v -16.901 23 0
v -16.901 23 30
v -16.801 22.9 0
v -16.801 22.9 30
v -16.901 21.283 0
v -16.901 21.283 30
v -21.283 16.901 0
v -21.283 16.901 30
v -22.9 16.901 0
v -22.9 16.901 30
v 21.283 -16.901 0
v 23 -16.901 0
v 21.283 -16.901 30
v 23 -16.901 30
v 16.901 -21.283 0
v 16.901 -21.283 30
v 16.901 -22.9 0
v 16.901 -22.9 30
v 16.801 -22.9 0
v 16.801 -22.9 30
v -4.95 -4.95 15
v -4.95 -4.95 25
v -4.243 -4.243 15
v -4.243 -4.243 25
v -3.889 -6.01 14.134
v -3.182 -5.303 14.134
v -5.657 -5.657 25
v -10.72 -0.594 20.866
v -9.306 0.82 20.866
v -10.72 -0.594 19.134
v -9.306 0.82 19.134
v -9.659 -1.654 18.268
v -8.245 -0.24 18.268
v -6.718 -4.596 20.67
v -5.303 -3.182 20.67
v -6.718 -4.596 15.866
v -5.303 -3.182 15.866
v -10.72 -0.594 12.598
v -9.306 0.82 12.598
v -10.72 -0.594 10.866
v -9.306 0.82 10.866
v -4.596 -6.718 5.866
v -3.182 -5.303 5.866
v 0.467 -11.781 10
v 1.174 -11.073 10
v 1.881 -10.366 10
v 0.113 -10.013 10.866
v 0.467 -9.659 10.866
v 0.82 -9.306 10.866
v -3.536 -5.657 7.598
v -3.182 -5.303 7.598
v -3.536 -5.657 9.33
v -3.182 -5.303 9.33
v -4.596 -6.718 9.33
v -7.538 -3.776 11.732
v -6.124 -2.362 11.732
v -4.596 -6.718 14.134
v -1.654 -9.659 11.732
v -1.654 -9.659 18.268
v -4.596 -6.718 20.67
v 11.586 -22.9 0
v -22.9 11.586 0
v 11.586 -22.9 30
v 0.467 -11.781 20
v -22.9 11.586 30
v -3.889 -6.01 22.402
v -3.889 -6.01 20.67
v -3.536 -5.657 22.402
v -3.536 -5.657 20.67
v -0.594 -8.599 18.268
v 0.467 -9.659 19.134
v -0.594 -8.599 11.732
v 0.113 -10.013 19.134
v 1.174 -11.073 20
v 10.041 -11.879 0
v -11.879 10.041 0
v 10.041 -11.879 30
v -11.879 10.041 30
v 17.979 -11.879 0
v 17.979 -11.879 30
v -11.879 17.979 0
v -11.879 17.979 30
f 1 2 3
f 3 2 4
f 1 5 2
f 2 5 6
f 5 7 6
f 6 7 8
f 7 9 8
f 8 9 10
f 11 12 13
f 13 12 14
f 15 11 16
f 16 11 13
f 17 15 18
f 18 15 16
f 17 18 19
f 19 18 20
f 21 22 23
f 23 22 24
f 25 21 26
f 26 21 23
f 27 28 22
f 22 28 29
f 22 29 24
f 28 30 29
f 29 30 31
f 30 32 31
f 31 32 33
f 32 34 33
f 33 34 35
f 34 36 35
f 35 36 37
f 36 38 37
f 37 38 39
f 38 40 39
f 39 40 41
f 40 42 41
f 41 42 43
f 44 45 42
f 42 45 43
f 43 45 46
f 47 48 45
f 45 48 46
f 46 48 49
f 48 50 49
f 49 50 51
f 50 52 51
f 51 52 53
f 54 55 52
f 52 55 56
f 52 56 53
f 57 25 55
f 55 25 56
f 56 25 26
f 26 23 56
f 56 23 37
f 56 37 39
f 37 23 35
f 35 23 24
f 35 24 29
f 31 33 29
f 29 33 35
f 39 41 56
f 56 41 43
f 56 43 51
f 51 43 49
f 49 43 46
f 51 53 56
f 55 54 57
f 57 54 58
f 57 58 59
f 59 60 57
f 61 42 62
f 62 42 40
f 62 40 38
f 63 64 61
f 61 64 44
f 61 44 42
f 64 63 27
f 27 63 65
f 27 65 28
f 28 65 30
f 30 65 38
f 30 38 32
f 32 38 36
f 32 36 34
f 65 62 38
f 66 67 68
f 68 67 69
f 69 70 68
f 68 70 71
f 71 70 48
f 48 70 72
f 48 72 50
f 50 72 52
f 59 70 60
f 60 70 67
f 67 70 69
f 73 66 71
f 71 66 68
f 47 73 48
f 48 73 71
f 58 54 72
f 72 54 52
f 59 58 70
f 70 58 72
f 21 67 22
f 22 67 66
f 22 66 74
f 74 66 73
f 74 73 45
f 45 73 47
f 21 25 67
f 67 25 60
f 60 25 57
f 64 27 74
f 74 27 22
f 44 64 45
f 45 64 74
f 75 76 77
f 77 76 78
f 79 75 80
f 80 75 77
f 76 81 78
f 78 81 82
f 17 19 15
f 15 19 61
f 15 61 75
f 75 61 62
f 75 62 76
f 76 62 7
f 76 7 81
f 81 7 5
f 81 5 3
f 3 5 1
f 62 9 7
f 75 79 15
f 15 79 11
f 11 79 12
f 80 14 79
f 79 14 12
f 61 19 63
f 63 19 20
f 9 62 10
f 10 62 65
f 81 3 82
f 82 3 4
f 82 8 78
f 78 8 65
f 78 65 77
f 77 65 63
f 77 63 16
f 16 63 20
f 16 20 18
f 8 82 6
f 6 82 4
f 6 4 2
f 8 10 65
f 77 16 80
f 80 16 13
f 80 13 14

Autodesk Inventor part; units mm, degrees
ref_plane "YZ Plane" through (0, 0, 0) normal (1, 0, 0) x (0, 1, 0)
ref_plane "XZ Plane" through (0, 0, 0) normal (0, 1, 0) x (-1, 0, 0)
ref_plane "XY Plane" through (0, 0, 0) normal (0, 0, 1) x (1, 0, 0)
sketch "Sketch1" plane through (0, 0, 0) normal (0, 0, 1) x (1, 0, 0)
  line L0 (-16.9, 21.4) -> (-16.9, 16.9) construction
  arc A0 (-22.9, 19.9) -> (-19.9, 22.9) centre (-19.9, 19.9) ccw construction
  line L1 (-16.9, 16.9) -> (16.9, 16.9) construction
  line L2 (16.9, 16.9) -> (16.9, -16.9) construction
  line L3 (16.9, -16.9) -> (-16.9, -16.9) construction
  line L4 (-16.9, -16.9) -> (-16.9, 16.9) construction
  arc A1 (22.9, -19.9) -> (19.9, -22.9) centre (19.9, -19.9) ccw construction
  line L5 (22.9, 19.9) -> (22.9, -19.9) construction
  arc A2 (19.9, 22.9) -> (22.9, 19.9) centre (19.9, 19.9) ccw construction
  line L6 (-19.9, 22.9) -> (19.9, 22.9) construction
  arc A3 (-22.9, 19.9) -> (-19.9, 22.9) centre (-19.9, 19.9) ccw construction
  line L7 (-22.9, -19.9) -> (-22.9, 19.9) construction
  arc A4 (-19.9, -22.9) -> (-22.9, -19.9) centre (-19.9, -19.9) ccw construction
  line L8 (19.9, -22.9) -> (-19.9, -22.9) construction
  line L9 (-21.4, 16.9) -> (-16.9, 16.9) construction
  line L10 (-16.9, -16.9) -> (-21.4, -16.9) construction
  line L11 (-16.9, -16.9) -> (-16.9, -21.4) construction
  line L12 (16.9, -21.4) -> (16.9, -16.9) construction
  line L13 (21.4, -16.9) -> (16.9, -16.9) construction
  line L14 (16.9, 16.9) -> (21.4, 16.9) construction
  line L15 (16.9, 16.9) -> (16.9, 21.4) construction
  line L16 (-16.8009, 21.2415) -> (21.2415, -16.8009)
  line L17 (21.2415, -16.8009) -> (16.8009, -21.2415)
  line L18 (16.8009, -21.2415) -> (-21.2415, 16.8009)
  line L19 (-21.2415, 16.8009) -> (-16.8009, 21.2415)
  line L20 (-16.8009, 21.2415) -> (16.8009, -21.2415) construction
  line L21 (21.2415, -16.8009) -> (-21.2415, 16.8009) construction
  line L22 (-16.8009, 21.2415) -> (36.9991, 21.2415) construction
  line L23 (-21.2415, 16.8009) -> (-22.9, 16.8009)
  line L24 (16.8009, -21.2415) -> (16.8009, -22.9)
  line L25 (16.8009, -22.9) -> (-22.9, 16.8009)
  line L26 (-16.8009, 21.2415) -> (-16.8009, 22.9)
  line L27 (21.2415, -16.8009) -> (22.9, -16.8009)
  line L28 (22.9, -16.8009) -> (-16.8009, 22.9)
  line L29 (-22.9, 16.8009) -> (-22.9, 11.5863)
  line L30 (16.8009, -22.9) -> (11.5863, -22.9)
  line L31 (-22.9, 11.5863) -> (11.5863, -22.9)
  point P0 (0, 0)
  dimension "d0" = 53.8
  dimension "d1" = 45
  dimension "d2" = 6.28
  dimension "d5" = 8
extrude "Extrusion1" add sketch "Sketch1" along normal blind 30
ref_plane "Work Plane1" through (16.9, -16.9, -8) normal (-0.7071068, -0.7071068, 0) x (0, 0, 1)
sketch "Sketch7" plane through (0, 0, 30) normal (0, 0, 1) x (1, 0, 0)
  line L0 (21.2415, -16.8009) -> (22.9, -16.8009) projected
  line L1 (22.9, -16.8009) -> (-16.8009, 22.9) projected
  line L2 (-16.8009, 22.9) -> (-16.8009, 21.2415) projected
  line L3 (-16.8009, 21.2415) -> (-21.2415, 16.8009) projected
  line L4 (-21.2415, 16.8009) -> (-22.9, 16.8009) projected
  line L5 (-22.9, 16.8009) -> (-22.9, 11.5863) projected
  line L6 (-22.9, 11.5863) -> (11.5863, -22.9) projected
  line L7 (11.5863, -22.9) -> (16.8009, -22.9) projected
  line L8 (16.8009, -22.9) -> (16.8009, -21.2415) projected
  line L9 (16.8009, -21.2415) -> (21.2415, -16.8009) projected
  line L10 (3.0496, 3.0496) -> (-5.6569, -5.6569)
  line L11 (-22.9, 11.5863) -> (11.5863, -22.9) projected
  line L12 (17.9785, -3.9418) -> (10.0409, -11.8794)
  line L13 (10.0409, -11.8794) -> (-11.8794, 10.0409)
  line L14 (-11.8794, 10.0409) -> (-3.9418, 17.9785)
  line L15 (-3.9418, 17.9785) -> (17.9785, -3.9418)
  line L16 (17.9785, -3.9418) -> (-11.8794, 10.0409) construction
  line L17 (10.0409, -11.8794) -> (-3.9418, 17.9785) construction
  line L18 (-11.8794, 10.0409) -> (-11.8794, 17.9785)
  line L19 (22.9, -16.8009) -> (-16.8009, 22.9) projected
  line L20 (10.0409, -11.8794) -> (17.9785, -11.8794)
  point P0 (0, 0)
  dimension "d28" = 31
  dimension "d29" = 1.3
extrude "Extrusion7" cut sketch "Sketch7" against normal through all contours L20 L12 L1 | L12 L13 L10 L1 | L1 L14 L15 L12 | L10 L13 L14 L1 | L14 L18 L1
sketch "Sketch10" plane through (11.5863, -22.9, 30) normal (-0.7071068, -0.7071068, 0) x (-0.7071068, 0.7071068, 0)
  line L0 (1.6838, 16.5215) -> (7.0744, 16.5215) construction
  line L1 (7.0744, 16.5215) -> (7.0744, 10.5304) construction
  line L2 (7.0744, 10.5304) -> (1.6838, 10.5304) construction
  line L3 (1.6838, 10.5304) -> (1.6838, 6.839) construction
  line L4 (1.6838, 6.839) -> (6.7206, 6.839) construction
  line L5 (6.7206, 6.839) -> (6.7206, 1.2092) construction
  line L6 (6.7206, 1.2092) -> (1.6838, 1.2092) construction
  line L7 (1.6838, 1.2092) -> (1.6838, -3.423) construction
  line L8 (1.6838, -3.423) -> (34.6838, -3.423) construction
  line L9 (34.6838, 30.377) -> (1.6838, 30.377) construction
  line L10 (1.6838, 30.377) -> (1.6838, 26.2152) construction
  line L11 (1.6838, 26.2152) -> (7.1181, 26.2152) construction
  line L12 (7.1181, 26.2152) -> (7.1181, 20.0634) construction
  line L13 (7.1181, 20.0634) -> (1.6838, 20.0634) construction
  line L14 (1.6838, 20.0634) -> (1.6838, 16.5215) construction
  line L15 (7.0744, 13.526) -> (34.6838, 13.477) construction
  line L16 (1.6838, 30.377) -> (36.6838, 30.377) construction
  line L17 (36.6838, -3.423) -> (1.6838, -3.423) construction
  line L18 (15.7252, 20) -> (15.7252, 10)
  line L19 (15.7252, 10) -> (24.3855, 5)
  line L20 (15.7252, 20) -> (17.2252, 19.134)
  line L21 (17.2252, 19.134) -> (17.2252, 10.866)
  line L22 (17.2252, 10.866) -> (22.8855, 7.5981)
  line L23 (22.8855, 7.5981) -> (22.8855, 15.866)
  line L24 (22.8855, 15.866) -> (24.3855, 15)
  line L25 (24.3855, 15) -> (24.3855, 5)
  line L26 (34.6838, 30.377) -> (34.6838, -3.423)
  line L27 (24.3855, 31.8785) -> (24.3855, -1.9215) construction
  line L28 (1.6838, -3.423) -> (34.6838, -3.423) construction
  line L29 (34.6838, 30.377) -> (34.6838, 30.377) construction
  line L30 (34.6838, 30.377) -> (34.6838, -3.423) construction
  line L31 (34.6838, -3.423) -> (34.6838, -3.423) construction
  line L32 (34.6838, -3.423) -> (34.6838, 30.377) construction
  line L33 (48.771, 30) -> (0, 30) construction
  line L34 (0, 30) -> (0, 0) construction
  line L35 (48.771, 0) -> (0, 0) construction
  line L36 (48.771, 30) -> (48.771, 0) construction
  line L37 (24.3855, 30) -> (24.3855, 0) construction
  line L38 (48.771, 0) -> (0, 0) construction
  line L39 (48.771, 30) -> (48.771, 0) construction
  line L40 (48.771, 15) -> (0, 15) construction
  line L41 (0, 30) -> (0, 0) construction
  point P0 (24.3855, 15)
  dimension "d40" = 1.5
  dimension "d41" = 1.5
  dimension "d42" = 1.5
  dimension "d43" = 10
  dimension "d44" = 10
emboss "Emboss1" sketch "Sketch10" operation cut depth 1 direction (0.7071068, 0.7071068, 0)
sketch "Sketch11" plane through (11.5863, -22.9, 30) normal (-0.7071068, -0.7071068, 0) x (-0.7071068, 0.7071068, 0)
  line L0 (17.2252, 10.866) -> (22.8855, 7.5981) construction
  line L1 (22.8855, 7.5981) -> (22.8855, 15.866) construction
  line L2 (22.8855, 15.866) -> (24.3855, 15) construction
  line L3 (24.3855, 15) -> (24.3855, 5) construction
  line L4 (24.3855, 5) -> (15.7252, 10) construction
  line L5 (15.7252, 10) -> (15.7252, 20) construction
  line L6 (15.7252, 20) -> (17.2252, 19.134) construction
  line L7 (17.2252, 19.134) -> (17.2252, 10.866) construction
  line L8 (48.771, 30) -> (0, 30) construction
  line L9 (0, 30) -> (0, 0) construction
  line L10 (48.771, 0) -> (0, 0) construction
  line L11 (48.771, 30) -> (48.771, 0) construction
  line L12 (15.7252, 20) -> (17.2252, 19.134) construction
  line L13 (17.2252, 19.134) -> (17.2252, 10.866) construction
  line L14 (17.2252, 10.866) -> (22.8855, 7.5981) construction
  line L15 (22.8855, 7.5981) -> (22.8855, 15.866) construction
  line L16 (22.8855, 15.866) -> (24.3855, 15) construction
  line L17 (24.3855, 15) -> (24.3855, 5) construction
  line L18 (24.3855, 5) -> (15.7252, 10) construction
  line L19 (15.7252, 10) -> (15.7252, 20) construction
  line L20 (15.5651, 18.4016) -> (15.5, -16.9) construction
  line L21 (15.5651, 18.4016) -> (-17.5, 16.9) construction
  line L22 (-17.5, 16.9) -> (-17.5, 12.7382) construction
  line L23 (-17.5, 12.7382) -> (-12.0658, 12.7382) construction
  line L24 (-12.0658, 12.7382) -> (-12.0658, 6.5864) construction
  line L25 (-12.0658, 6.5864) -> (-17.5, 6.5864) construction
  line L26 (-17.5, 6.5864) -> (-17.5, 3.0446) construction
  line L27 (-17.5, 3.0446) -> (-12.1095, 3.0446) construction
  line L28 (-12.1095, 3.0446) -> (-12.1095, -2.9465) construction
  line L29 (-12.1095, -2.9465) -> (-17.5, -2.9465) construction
  line L30 (-17.5, -2.9465) -> (-17.5, -6.638) construction
  line L31 (-17.5, -6.638) -> (-12.4632, -6.638) construction
  line L32 (-12.4632, -6.638) -> (-12.4632, -12.2678) construction
  line L33 (-12.4632, -12.2678) -> (-17.5, -12.2678) construction
  line L34 (-17.5, -12.2678) -> (-17.5, -16.9) construction
  line L35 (-17.5, -16.9) -> (15.5, -16.9) construction
  line L36 (-12.1095, 0.049) -> (15.5326, 0.7508) construction
  line L37 (15.5, -16.9) -> (15.5651, 18.4016) construction
  line L38 (1.91, 17.7815) -> (1.91, -16.9) construction
  line L39 (15.5, -16.9) -> (-17.5, -16.9) construction
  line L40 (22.8855, 7.5981) -> (22.8855, 15.866) construction
  line L41 (17.2252, 19.134) -> (17.2252, 10.866)
  line L42 (17.2252, 10.866) -> (22.8855, 7.5981)
  line L43 (17.2252, 19.134) -> (17.2252, 10.866)
  line L44 (17.2252, 10.866) -> (22.8855, 7.5981)
  line L45 (22.8855, 7.5981) -> (22.8855, 9.3301)
  line L46 (22.8855, 7.5981) -> (22.8855, 15.866)
  line L47 (22.8855, 9.3301) -> (18.7252, 11.7321)
  line L48 (18.7252, 11.7321) -> (18.7252, 18.2679)
  line L49 (18.7252, 18.2679) -> (22.8855, 20.6699)
  line L50 (17.2252, 19.134) -> (22.8855, 22.4019)
  line L51 (22.8855, 22.4019) -> (22.8855, 20.6699)
  point P0 (24.3855, 30)
  point P1 (20.9754, 14.9785)
  dimension "d47" = 120
  dimension "d48" = 1.5
  dimension "d49" = 1.5
  dimension "d50" = 1.5
emboss "Emboss2" sketch "Sketch11" operation cut depth 1.5 direction (0.7071068, 0.7071068, 0)
sketch "Sketch12" plane through (11.5863, -22.9, 30) normal (-0.7071068, -0.7071068, 0) x (-0.7071068, 0.7071068, 0)
  line L0 (18.7252, 11.7321) -> (22.8855, 9.3301) construction
  line L1 (22.8855, 9.3301) -> (22.8855, 15.866) construction
  line L2 (22.8855, 15.866) -> (24.3855, 15) construction
  line L3 (24.3855, 15) -> (24.3855, 5) construction
  line L4 (24.3855, 5) -> (15.7252, 10) construction
  line L5 (15.7252, 10) -> (15.7252, 20) construction
  line L6 (15.7252, 20) -> (17.2252, 19.134) construction
  line L7 (17.2252, 19.134) -> (22.8855, 22.4019) construction
  line L8 (22.8855, 22.4019) -> (22.8855, 20.6699) construction
  line L9 (22.8855, 20.6699) -> (18.7252, 18.2679) construction
  line L10 (18.7252, 18.2679) -> (18.7252, 11.7321) construction
  line L11 (48.771, 30) -> (0, 30) construction
  line L12 (0, 30) -> (0, 0) construction
  line L13 (48.771, 0) -> (0, 0) construction
  line L14 (48.771, 30) -> (48.771, 0) construction
  line L15 (18.7252, 11.7321) -> (22.8855, 9.3301) construction
  line L16 (22.8855, 9.3301) -> (22.8855, 15.866) construction
  line L17 (22.8855, 15.866) -> (24.3855, 15) construction
  line L18 (24.3855, 15) -> (24.3855, 5) construction
  line L19 (24.3855, 5) -> (15.7252, 10) construction
  line L20 (15.7252, 10) -> (15.7252, 20) construction
  line L21 (15.7252, 20) -> (17.2252, 19.134) construction
  line L22 (17.2252, 19.134) -> (22.8855, 22.4019) construction
  line L23 (22.8855, 22.4019) -> (22.8855, 20.6699) construction
  line L24 (22.8855, 20.6699) -> (18.7252, 18.2679) construction
  line L25 (18.7252, 18.2679) -> (18.7252, 11.7321) construction
  line L26 (15.5651, 18.4016) -> (15.5, -16.9) construction
  line L27 (15.5651, 18.4016) -> (-17.5, 16.9) construction
  line L28 (-17.5, 16.9) -> (-17.5, 12.7382) construction
  line L29 (-17.5, 12.7382) -> (-12.0658, 12.7382) construction
  line L30 (-12.0658, 12.7382) -> (-12.0658, 6.5864) construction
  line L31 (-12.0658, 6.5864) -> (-17.5, 6.5864) construction
  line L32 (-17.5, 6.5864) -> (-17.5, 3.0446) construction
  line L33 (-17.5, 3.0446) -> (-12.1095, 3.0446) construction
  line L34 (-12.1095, 3.0446) -> (-12.1095, -2.9465) construction
  line L35 (-12.1095, -2.9465) -> (-17.5, -2.9465) construction
  line L36 (-17.5, -2.9465) -> (-17.5, -6.638) construction
  line L37 (-17.5, -6.638) -> (-12.4632, -6.638) construction
  line L38 (-12.4632, -6.638) -> (-12.4632, -12.2678) construction
  line L39 (-12.4632, -12.2678) -> (-17.5, -12.2678) construction
  line L40 (-17.5, -12.2678) -> (-17.5, -16.9) construction
  line L41 (-17.5, -16.9) -> (15.5, -16.9) construction
  line L42 (17.2252, 19.134) -> (22.8855, 22.4019)
  line L43 (15.7252, 20) -> (17.2252, 19.134)
  line L44 (17.2252, 19.134) -> (22.8855, 22.4019)
  line L45 (22.8855, 22.4019) -> (22.8855, 20.6699)
  line L46 (22.8855, 22.4019) -> (22.8855, 20.6699)
  line L47 (22.8855, 31.8785) -> (22.8855, -1.9215) construction
  line L48 (22.8855, 9.3301) -> (22.8855, 15.866) construction
  line L49 (15.7252, 20) -> (22.8855, 24.134)
  line L50 (22.8855, 24.134) -> (31.5457, 19.134)
  line L51 (31.5457, 19.134) -> (31.5457, 17.4019)
  line L52 (31.5457, 17.4019) -> (25.8855, 14.134)
  line L53 (25.8855, 14.134) -> (25.8855, 9.3301)
  line L54 (25.8855, 9.3301) -> (30.0457, 11.7321)
  line L55 (31.5457, 9.134) -> (31.5457, 9.134)
  line L56 (24.3855, 5) -> (15.7252, 10)
  line L57 (31.5457, 9.134) -> (24.3855, 5)
  line L58 (22.8855, 15.866) -> (24.3855, 15)
  line L59 (24.3855, 5) -> (24.3855, 15)
  line L60 (24.3855, 15) -> (22.8855, 15.866)
  line L61 (22.8855, 20.6699) -> (18.7252, 18.2679)
  line L62 (22.8855, 20.6699) -> (22.8855, 22.4019)
  line L63 (24.3855, 15) -> (24.3855, 5)
  line L64 (22.8855, 15.866) -> (27.0457, 18.2679)
  line L65 (27.0457, 18.2679) -> (22.8855, 20.6699)
  line L66 (15.7252, 10) -> (24.3855, 5) construction
  line L67 (18.7252, 11.7321) -> (22.8855, 9.3301) construction
  line L68 (18.7252, 11.7321) -> (24.3855, 8.4641) construction
  line L69 (24.3855, 8.4641) -> (34.3988, 14.2453) construction
  line L70 (24.3855, 15) -> (31.5457, 19.134) construction
  line L71 (24.3855, 5) -> (39.2099, 13.5589) construction
  line L72 (27.0457, 18.2679) -> (31.2025, 17.6001) construction
  line L73 (22.8855, 22.4019) -> (22.8855, 20.6699) construction
  line L74 (31.2025, 17.6001) -> (22.8855, 22.4019) construction
  line L75 (31.5457, 9.134) -> (31.5457, 10.866)
  line L76 (31.5457, 10.866) -> (30.0457, 11.7321)
  line L77 (18.7252, 11.7321) -> (22.8855, 9.3301) construction
  line L78 (18.7252, 18.2679) -> (18.7252, 11.7321) construction
  line L79 (22.8855, 20.6699) -> (18.7252, 18.2679) construction
  line L80 (22.8855, 22.4019) -> (22.8855, 20.6699) construction
  line L81 (17.2252, 19.134) -> (22.8855, 22.4019) construction
  line L82 (17.2252, 10.866) -> (17.2252, 19.134) construction
  line L83 (22.8855, 7.5981) -> (17.2252, 10.866) construction
  line L84 (22.8855, 9.3301) -> (22.8855, 7.5981) construction
  line L85 (22.8855, 7.5981) -> (24.3855, 6.7321) construction
  line L86 (24.3855, 6.7321) -> (34.2349, 12.4186) construction
  point P0 (24.3855, 30)
  point P1 (20.9754, 14.9785)
  dimension "d54" = 60
  dimension "d55" = 1.5
  dimension "d56" = 120
  dimension "d57" = 120
  dimension "d58" = 1.5
  dimension "d59" = 120
extrude "Extrusion9" cut sketch "Sketch12" against normal blind 2
sketch "Sketch13" plane through (0, 0, 30) normal (0, 0, 1) x (1, 0, 0)
  line L0 (-11.8794, 10.0409) -> (-11.8794, 17.9785) construction
  line L1 (-11.8794, 17.9785) -> (-16.8009, 22.9) construction
  line L2 (-16.8009, 22.9) -> (-16.8009, 21.2415) projected
  line L3 (-16.8009, 21.2415) -> (-21.2415, 16.8009) projected
  line L4 (-21.2415, 16.8009) -> (-22.9, 16.8009) projected
  line L5 (-22.9, 16.8009) -> (-22.9, 11.5863) construction
  line L6 (-22.9, 11.5863) -> (11.5863, -22.9) construction
  line L7 (11.5863, -22.9) -> (16.8009, -22.9) construction
  line L8 (16.8009, -22.9) -> (16.8009, -21.2415) projected
  line L9 (16.8009, -21.2415) -> (21.2415, -16.8009) projected
  line L10 (21.2415, -16.8009) -> (22.9, -16.8009) projected
  line L11 (22.9, -16.8009) -> (17.9785, -11.8794) construction
  line L12 (17.9785, -11.8794) -> (10.0409, -11.8794) construction
  line L13 (10.0409, -11.8794) -> (-11.8794, 10.0409) construction
  line L14 (-11.7794, 10.0823) -> (-11.7794, 18.02) construction
  line L15 (-11.7794, 18.02) -> (-16.9009, 23.1414) construction
  line L16 (-16.9009, 23.1414) -> (-16.9009, 21.2829)
  line L17 (-16.9009, 21.2829) -> (-21.2829, 16.9009)
  line L18 (-21.2829, 16.9009) -> (-23, 16.9009)
  line L19 (-23, 16.9009) -> (-23, 11.5449) construction
  line L20 (-23, 11.5449) -> (11.5449, -23) construction
  line L21 (11.5449, -23) -> (16.9009, -23) construction
  line L22 (16.9009, -23) -> (16.9009, -21.2829)
  line L23 (16.9009, -21.2829) -> (21.2829, -16.9009)
  line L24 (21.2829, -16.9009) -> (23.1414, -16.9009)
  line L25 (23.1414, -16.9009) -> (18.02, -11.7794) construction
  line L26 (18.02, -11.7794) -> (10.0823, -11.7794) construction
  line L27 (10.0823, -11.7794) -> (-11.7794, 10.0823) construction
  line L28 (16.8009, -22.9) -> (16.9009, -22.9)
  line L29 (22.9, -16.8009) -> (23, -16.9009)
  line L30 (-21.2415, 16.8009) -> (-22.9, 16.8009) projected
  line L31 (-22.9, 16.8009) -> (-22.9, 16.9009)
  line L32 (-16.8009, 22.9) -> (-16.9009, 23)
  point P0 (0, 0)
  dimension "d65" = 0.1
extrude "IM_offset" add sketch "Sketch13" against normal up to surface (30 mm away)
equation "\"d3\" = MirrorThickness1"
equation "\"d41\" = d40"
equation "\"d42\" = d40"
equation "\"d44\" = d43"
equation "\"d48\" = d51"
equation "\"d49\" = d51"
equation "\"d50\" = d51"
equation "\"d55\" = d60"
equation "\"d58\" = d60"
equation "\"MirrorThickness1\" = 30"
equation "\"d51\" = 1.5"
equation "\"d60\" = 1.5"
properties part number "20_Cube_Insert_Mirror_Holder_wLogo_v3"
